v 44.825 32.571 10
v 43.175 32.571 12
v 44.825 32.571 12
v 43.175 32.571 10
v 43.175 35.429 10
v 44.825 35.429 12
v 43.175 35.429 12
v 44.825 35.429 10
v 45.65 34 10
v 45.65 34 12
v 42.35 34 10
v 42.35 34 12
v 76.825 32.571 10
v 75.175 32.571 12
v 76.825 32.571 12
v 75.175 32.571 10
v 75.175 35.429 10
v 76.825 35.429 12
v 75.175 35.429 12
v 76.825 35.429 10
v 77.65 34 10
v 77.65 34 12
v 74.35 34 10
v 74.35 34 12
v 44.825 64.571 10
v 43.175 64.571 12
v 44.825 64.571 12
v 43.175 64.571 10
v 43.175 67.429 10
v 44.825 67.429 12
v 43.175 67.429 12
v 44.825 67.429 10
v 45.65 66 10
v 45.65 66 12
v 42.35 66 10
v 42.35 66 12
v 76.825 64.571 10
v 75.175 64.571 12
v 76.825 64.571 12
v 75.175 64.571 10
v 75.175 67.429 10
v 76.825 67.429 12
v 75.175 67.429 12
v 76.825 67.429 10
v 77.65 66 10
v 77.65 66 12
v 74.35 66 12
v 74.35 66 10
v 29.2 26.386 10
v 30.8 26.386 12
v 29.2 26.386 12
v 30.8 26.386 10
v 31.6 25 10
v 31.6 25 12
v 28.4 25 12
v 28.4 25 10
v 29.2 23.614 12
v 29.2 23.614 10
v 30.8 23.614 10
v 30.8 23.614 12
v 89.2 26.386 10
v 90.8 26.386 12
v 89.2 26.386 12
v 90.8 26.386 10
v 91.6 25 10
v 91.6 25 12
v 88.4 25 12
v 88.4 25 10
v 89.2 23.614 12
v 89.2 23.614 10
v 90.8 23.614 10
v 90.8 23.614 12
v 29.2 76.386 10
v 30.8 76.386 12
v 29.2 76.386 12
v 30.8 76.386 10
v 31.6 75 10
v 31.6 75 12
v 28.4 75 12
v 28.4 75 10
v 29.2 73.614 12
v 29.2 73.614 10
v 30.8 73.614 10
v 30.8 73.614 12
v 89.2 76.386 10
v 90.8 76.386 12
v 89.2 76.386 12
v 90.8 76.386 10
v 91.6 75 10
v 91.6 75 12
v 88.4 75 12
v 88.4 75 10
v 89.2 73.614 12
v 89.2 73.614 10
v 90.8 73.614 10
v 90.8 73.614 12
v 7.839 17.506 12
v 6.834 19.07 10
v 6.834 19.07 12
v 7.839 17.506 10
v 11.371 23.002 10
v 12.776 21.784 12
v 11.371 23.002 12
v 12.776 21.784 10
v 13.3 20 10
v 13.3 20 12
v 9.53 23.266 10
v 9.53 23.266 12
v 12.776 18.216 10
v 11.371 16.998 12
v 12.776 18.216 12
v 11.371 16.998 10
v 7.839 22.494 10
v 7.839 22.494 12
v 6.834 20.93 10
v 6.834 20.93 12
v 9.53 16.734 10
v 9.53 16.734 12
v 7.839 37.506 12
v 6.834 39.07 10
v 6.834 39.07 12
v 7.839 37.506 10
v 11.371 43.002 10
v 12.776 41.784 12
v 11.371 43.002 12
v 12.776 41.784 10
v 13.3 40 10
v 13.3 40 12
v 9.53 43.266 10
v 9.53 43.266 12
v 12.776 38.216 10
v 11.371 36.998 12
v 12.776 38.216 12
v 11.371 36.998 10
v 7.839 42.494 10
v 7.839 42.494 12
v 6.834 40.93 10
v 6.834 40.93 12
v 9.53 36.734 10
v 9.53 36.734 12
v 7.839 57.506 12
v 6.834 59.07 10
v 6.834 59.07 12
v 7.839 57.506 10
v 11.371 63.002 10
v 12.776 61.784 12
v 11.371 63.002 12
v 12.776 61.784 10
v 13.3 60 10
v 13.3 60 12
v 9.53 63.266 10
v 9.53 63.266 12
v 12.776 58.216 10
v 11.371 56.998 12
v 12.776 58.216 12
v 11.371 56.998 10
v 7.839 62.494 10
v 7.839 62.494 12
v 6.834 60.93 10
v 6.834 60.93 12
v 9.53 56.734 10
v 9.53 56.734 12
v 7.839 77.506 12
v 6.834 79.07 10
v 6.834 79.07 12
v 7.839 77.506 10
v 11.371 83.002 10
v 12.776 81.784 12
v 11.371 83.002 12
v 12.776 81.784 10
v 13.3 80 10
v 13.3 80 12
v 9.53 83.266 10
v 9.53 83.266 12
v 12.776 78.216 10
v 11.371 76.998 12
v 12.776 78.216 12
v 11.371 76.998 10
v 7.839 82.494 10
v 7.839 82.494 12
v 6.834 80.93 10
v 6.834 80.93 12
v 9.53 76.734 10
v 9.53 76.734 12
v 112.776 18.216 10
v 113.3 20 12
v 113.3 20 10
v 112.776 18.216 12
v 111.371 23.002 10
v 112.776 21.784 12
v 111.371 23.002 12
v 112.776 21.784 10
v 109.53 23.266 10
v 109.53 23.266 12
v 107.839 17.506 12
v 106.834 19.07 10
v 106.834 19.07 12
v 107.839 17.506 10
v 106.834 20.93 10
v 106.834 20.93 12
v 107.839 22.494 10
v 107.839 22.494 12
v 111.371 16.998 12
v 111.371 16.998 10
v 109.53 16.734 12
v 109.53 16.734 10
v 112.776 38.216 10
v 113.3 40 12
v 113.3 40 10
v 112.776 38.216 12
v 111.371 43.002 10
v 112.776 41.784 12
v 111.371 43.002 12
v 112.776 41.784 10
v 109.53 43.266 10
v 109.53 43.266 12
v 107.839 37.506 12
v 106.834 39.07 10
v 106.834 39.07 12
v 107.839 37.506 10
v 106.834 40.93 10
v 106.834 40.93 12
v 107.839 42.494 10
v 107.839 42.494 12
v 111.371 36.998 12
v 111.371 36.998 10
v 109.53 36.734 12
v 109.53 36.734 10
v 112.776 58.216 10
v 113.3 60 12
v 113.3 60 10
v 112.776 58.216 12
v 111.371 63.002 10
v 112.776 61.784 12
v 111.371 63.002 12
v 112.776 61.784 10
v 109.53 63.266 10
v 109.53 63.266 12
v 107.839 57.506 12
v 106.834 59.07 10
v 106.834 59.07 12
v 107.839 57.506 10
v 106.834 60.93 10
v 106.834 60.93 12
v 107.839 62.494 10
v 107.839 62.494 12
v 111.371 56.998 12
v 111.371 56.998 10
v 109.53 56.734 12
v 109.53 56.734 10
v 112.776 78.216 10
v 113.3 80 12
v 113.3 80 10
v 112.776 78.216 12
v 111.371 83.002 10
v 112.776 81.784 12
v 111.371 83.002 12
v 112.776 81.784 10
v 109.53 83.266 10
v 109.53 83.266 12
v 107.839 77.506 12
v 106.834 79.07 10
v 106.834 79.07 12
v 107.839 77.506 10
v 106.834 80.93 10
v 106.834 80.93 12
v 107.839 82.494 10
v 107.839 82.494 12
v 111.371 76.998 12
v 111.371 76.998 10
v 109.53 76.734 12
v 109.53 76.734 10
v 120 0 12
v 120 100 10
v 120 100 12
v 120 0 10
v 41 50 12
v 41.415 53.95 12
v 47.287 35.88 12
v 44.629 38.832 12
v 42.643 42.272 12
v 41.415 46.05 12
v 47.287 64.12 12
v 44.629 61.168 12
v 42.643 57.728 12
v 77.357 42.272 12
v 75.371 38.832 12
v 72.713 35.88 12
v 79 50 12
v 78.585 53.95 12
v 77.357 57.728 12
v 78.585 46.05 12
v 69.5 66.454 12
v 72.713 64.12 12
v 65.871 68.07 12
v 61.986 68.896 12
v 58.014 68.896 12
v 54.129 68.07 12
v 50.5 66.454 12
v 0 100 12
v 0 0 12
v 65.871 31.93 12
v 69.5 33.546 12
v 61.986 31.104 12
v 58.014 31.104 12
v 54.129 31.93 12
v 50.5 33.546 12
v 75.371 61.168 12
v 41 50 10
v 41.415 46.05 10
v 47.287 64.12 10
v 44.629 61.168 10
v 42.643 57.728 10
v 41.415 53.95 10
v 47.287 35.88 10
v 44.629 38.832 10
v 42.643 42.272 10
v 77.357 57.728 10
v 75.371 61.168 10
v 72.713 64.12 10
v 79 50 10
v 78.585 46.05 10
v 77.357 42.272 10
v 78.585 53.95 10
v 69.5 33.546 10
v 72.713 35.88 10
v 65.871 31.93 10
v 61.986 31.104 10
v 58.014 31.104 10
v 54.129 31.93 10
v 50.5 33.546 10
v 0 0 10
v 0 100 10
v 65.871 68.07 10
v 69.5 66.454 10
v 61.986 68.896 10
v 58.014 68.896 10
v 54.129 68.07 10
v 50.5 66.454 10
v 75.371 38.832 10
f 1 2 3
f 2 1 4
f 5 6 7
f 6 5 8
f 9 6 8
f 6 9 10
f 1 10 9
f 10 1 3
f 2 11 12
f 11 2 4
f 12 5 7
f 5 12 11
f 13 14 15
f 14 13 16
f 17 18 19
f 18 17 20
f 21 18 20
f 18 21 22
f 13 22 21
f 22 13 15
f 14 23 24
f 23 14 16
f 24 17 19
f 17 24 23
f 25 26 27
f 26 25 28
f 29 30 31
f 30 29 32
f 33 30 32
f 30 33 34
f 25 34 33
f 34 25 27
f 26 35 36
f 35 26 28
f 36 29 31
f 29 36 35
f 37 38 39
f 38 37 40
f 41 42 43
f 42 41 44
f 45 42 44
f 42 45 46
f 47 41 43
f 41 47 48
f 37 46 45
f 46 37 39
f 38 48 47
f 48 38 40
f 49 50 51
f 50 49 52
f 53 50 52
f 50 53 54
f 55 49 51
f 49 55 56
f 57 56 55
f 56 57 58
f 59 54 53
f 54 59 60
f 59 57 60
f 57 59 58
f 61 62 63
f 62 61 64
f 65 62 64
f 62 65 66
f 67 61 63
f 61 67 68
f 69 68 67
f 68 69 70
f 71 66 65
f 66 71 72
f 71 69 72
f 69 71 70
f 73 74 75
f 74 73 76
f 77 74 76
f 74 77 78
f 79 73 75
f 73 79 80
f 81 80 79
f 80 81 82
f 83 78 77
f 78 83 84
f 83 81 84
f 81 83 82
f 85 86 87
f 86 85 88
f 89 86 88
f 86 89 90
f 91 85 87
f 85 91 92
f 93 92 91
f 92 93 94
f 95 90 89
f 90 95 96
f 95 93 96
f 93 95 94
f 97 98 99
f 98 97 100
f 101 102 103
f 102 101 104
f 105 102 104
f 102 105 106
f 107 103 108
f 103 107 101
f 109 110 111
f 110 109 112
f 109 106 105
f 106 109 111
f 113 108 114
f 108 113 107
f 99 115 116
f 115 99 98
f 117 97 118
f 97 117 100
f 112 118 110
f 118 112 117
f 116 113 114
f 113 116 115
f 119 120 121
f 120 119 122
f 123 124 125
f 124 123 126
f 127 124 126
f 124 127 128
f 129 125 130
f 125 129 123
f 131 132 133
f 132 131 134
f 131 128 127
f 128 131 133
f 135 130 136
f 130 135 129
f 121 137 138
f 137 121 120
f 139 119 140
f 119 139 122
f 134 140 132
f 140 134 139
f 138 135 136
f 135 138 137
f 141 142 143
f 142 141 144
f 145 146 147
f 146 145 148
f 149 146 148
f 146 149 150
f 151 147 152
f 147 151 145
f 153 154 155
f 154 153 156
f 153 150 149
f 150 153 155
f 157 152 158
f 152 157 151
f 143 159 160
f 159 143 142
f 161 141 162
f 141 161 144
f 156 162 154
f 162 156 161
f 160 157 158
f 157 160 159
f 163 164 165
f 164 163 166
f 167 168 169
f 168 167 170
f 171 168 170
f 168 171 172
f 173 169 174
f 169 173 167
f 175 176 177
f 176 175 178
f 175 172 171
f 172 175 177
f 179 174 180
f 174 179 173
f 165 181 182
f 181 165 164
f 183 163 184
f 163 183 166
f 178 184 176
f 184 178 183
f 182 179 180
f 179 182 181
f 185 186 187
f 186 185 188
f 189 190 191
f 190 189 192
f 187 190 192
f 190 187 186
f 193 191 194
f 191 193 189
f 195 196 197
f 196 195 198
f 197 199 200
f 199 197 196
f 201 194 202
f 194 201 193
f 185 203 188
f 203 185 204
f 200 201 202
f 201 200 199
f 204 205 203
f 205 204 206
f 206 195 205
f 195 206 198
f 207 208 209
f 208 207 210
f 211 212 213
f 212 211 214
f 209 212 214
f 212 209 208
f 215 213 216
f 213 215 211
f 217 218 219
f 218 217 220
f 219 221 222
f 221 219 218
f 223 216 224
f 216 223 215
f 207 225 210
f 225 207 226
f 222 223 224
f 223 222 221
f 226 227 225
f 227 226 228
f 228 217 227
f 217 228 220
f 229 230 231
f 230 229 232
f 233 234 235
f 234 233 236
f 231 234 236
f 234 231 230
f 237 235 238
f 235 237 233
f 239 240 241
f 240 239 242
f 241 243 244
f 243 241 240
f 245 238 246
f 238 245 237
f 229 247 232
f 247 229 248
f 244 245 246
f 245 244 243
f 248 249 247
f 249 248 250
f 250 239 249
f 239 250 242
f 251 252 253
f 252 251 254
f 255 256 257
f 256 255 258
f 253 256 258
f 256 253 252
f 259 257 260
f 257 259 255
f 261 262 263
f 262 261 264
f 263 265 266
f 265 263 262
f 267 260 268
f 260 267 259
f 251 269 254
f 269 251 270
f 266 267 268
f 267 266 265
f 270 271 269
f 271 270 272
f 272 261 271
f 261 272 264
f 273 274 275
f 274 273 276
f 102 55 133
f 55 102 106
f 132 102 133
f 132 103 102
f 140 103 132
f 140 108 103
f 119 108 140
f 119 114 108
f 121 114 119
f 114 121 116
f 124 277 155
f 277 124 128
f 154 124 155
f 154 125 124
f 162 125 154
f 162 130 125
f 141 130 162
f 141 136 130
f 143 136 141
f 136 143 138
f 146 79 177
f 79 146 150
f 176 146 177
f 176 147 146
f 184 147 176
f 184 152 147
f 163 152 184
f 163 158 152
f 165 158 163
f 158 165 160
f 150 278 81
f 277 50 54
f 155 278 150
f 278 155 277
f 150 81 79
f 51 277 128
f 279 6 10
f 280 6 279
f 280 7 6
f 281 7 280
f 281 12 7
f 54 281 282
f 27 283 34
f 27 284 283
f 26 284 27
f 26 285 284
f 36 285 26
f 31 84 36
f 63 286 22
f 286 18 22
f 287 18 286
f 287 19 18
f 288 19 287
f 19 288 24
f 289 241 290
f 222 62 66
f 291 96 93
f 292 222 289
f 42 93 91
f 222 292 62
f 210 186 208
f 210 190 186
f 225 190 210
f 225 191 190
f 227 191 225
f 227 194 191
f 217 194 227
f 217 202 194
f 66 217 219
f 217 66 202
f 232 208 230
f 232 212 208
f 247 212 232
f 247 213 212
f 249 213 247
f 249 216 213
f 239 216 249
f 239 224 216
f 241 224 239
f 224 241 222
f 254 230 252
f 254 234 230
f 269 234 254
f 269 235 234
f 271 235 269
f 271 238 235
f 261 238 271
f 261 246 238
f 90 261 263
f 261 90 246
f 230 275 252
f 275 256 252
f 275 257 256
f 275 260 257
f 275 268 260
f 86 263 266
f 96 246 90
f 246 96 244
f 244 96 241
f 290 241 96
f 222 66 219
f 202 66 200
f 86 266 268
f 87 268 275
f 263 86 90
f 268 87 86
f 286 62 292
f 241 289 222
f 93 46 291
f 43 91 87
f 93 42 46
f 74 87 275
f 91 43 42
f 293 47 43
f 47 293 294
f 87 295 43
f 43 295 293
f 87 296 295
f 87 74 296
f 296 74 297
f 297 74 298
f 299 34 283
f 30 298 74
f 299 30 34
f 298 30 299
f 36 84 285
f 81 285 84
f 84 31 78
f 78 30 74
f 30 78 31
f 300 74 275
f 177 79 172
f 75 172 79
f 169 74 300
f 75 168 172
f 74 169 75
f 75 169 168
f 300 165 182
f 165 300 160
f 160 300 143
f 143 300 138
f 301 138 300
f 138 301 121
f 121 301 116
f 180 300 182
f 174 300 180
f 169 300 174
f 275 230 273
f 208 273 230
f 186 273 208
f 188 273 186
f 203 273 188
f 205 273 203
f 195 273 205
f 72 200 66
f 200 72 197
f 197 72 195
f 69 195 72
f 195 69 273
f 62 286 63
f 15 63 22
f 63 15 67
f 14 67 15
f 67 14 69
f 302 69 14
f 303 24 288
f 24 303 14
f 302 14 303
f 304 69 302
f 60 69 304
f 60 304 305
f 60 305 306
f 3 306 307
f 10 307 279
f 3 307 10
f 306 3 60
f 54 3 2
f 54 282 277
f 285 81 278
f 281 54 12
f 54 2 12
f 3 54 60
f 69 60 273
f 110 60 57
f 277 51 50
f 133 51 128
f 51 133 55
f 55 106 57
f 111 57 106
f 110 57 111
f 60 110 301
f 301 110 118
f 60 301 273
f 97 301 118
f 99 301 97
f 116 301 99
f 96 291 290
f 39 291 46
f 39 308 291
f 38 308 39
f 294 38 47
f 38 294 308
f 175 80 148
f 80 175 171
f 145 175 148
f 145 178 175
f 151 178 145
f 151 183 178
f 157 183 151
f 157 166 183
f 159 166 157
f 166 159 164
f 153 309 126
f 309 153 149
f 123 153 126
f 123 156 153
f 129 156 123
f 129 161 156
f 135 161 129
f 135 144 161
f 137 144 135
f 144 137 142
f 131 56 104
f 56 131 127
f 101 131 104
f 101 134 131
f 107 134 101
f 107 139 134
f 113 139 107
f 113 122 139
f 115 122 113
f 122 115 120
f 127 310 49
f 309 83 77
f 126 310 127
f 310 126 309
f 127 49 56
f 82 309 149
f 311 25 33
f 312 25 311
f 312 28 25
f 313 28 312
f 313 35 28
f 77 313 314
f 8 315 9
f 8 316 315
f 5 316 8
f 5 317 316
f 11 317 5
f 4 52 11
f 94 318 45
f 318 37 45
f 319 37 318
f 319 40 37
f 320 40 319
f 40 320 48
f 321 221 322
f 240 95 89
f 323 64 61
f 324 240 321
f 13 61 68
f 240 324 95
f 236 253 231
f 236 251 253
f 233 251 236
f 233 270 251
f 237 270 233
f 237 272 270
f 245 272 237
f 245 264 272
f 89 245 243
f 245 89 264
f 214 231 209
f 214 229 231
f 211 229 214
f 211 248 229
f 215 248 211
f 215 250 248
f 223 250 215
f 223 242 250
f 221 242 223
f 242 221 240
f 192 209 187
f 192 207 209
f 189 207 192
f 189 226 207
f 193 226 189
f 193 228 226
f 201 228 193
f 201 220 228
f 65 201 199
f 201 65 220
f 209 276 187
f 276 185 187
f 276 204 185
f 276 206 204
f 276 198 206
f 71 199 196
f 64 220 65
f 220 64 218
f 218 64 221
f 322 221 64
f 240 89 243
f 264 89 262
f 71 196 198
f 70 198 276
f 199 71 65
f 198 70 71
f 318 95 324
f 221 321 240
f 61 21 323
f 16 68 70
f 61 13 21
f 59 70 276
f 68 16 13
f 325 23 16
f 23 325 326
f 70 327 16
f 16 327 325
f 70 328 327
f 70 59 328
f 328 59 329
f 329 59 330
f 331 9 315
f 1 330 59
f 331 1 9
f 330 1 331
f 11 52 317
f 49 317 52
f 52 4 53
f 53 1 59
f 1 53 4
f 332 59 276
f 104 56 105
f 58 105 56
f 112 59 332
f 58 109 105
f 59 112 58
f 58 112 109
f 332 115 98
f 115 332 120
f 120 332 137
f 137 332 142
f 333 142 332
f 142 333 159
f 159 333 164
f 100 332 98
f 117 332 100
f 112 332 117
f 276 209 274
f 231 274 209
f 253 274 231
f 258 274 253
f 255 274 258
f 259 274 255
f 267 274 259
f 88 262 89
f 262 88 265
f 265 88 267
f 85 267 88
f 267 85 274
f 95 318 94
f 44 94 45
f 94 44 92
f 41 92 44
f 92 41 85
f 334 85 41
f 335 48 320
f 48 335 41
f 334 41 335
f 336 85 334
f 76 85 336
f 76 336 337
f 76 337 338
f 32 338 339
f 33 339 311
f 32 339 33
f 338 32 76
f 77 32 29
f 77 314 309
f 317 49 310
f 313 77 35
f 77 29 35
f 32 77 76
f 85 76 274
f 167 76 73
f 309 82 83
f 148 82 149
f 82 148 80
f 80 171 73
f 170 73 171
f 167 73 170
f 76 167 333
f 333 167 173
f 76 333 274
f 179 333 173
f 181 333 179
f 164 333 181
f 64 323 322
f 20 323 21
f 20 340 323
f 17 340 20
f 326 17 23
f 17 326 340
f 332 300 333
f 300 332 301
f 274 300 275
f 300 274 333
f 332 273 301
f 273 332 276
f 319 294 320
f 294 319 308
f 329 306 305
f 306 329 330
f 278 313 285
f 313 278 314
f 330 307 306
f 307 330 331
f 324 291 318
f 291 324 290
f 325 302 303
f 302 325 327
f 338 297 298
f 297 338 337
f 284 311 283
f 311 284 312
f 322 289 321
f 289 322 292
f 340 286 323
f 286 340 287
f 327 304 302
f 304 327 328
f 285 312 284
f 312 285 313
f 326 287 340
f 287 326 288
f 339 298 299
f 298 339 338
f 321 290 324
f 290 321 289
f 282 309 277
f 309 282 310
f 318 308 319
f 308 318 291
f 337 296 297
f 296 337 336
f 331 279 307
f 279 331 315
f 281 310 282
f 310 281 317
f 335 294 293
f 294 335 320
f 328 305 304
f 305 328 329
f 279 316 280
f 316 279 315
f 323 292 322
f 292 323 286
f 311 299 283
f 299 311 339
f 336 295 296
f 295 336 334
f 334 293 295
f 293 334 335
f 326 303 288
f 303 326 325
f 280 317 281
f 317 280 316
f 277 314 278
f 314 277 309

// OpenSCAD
// Dimensioni HAT modificate | IT/EN: Modified HAT dimensions
hat_length = 120; // Da 65 a 120 | IT/EN: From 65 to 120
hat_width = 100;  // Da 55 a 100 | IT/EN: From 55 to 100
hat_height = 10; // Altezza totale dal PCB | IT/EN: Total height from the PCB
hat_hole_inset = 2.5; // Bordi fori di fissaggio | IT/EN: Mounting-hole edge margins
hat_hole_diameter = 3.2; // Diametro fori HAT | IT/EN: HAT-hole diameter

// Dimensioni ventola | IT/EN: Fan dimensions
fan_size = 40;
fan_hole_spacing = 32; // Interasse fori | IT/EN: Hole spacing
fan_hole_diameter = 3.3; // Diametro fori ventola | IT/EN: Fan-hole diameter
fan_airflow_diameter = 38; // Diametro apertura centrale | IT/EN: Center-opening diameter

// Parametri struttura | IT/EN: Structure parameters
base_thickness = 2;
pillar_height = hat_height - base_thickness;
pillar_diameter = 6;
top_thickness = 2;

// Parametri fori antenne | IT/EN: Antenna-hole parameters
antenna_diameter = 6.6; // Diametro fori RP-SMA | IT/EN: RP-SMA hole diameter
antenna_margin = 20; // Distanza dal bordo superiore/inferiore (aumentata) | IT/EN: Increased distance from top/bottom edge
antenna_spacing = 20; // Distanza tra i fori | IT/EN: Distance between holes
antenna_offset = 10; // Distanza dal bordo laterale (aumentata per essere più interni) | IT/EN: Increased side-edge distance, placing the holes farther inward

// Calcolo offset per centrare i fori | IT/EN: Calculate offsets to center the holes
offset_x = (hat_length - 65) / 2;
offset_y = (hat_width - 55) / 2;

// Calcolo posizioni fori HAT (mantenute relative) | IT/EN: Calculate HAT-hole positions, retaining relative placement
hat_hole_positions = [
    [hat_hole_inset + offset_x, hat_hole_inset + offset_y],
    [65 - hat_hole_inset + offset_x, hat_hole_inset + offset_y],
    [hat_hole_inset + offset_x, 55 - hat_hole_inset + offset_y],
    [65 - hat_hole_inset + offset_x, 55 - hat_hole_inset + offset_y]
];

// Calcolo posizioni fori ventola (mantenute relative) | IT/EN: Calculate fan-hole positions, retaining relative placement
fan_center_x = 65/2 + offset_x;
fan_center_y = 55/2 + offset_y;
fan_hole_offset = fan_hole_spacing / 2;

fan_hole_positions = [
    [fan_center_x - fan_hole_offset, fan_center_y - fan_hole_offset],
    [fan_center_x + fan_hole_offset, fan_center_y - fan_hole_offset],
    [fan_center_x - fan_hole_offset, fan_center_y + fan_hole_offset],
    [fan_center_x + fan_hole_offset, fan_center_y + fan_hole_offset]
];

// Piastra superiore | IT/EN: Top plate
module top_plate() {
    translate([0, 0, base_thickness + pillar_height]) {
        difference() {
            // Piastra principale (nuove dimensioni) | IT/EN: Main plate with the new dimensions
            cube([hat_length, hat_width, top_thickness]);
            
            // Foro centrale per flusso d'aria | IT/EN: Center airflow opening
            translate([fan_center_x, fan_center_y, -0.1])
            cylinder(d = fan_airflow_diameter, h = top_thickness + 0.2);
            
            // Fori di montaggio ventola | IT/EN: Fan mounting holes
            for(pos = fan_hole_positions) {
                translate([pos[0], pos[1], -0.1])
                cylinder(d = fan_hole_diameter, h = top_thickness + 0.2);
            }
            
            // Fori passanti pilastri | IT/EN: Through-holes for pillars
            for(pos = hat_hole_positions) {
                translate([pos[0], pos[1], -0.1])
                cylinder(d = hat_hole_diameter, h = top_thickness + 0.2);
            }
            
            // Fori per antenne RP-SMA (lato sinistro - x=0) | IT/EN: RP-SMA antenna holes on the left side, x=0
            for(i = [0:3]) {
                translate([
                    antenna_offset, 
                    antenna_margin + i * antenna_spacing, 
                    -0.1
                ])
                cylinder(d = antenna_diameter, h = top_thickness + 0.2);
            }
            
            // Fori per antenne RP-SMA (lato destro - x=hat_length) | IT/EN: RP-SMA antenna holes on the right side, x=hat_length
            for(i = [0:3]) {
                translate([
                    hat_length - antenna_offset, 
                    antenna_margin + i * antenna_spacing, 
                    -0.1
                ])
                cylinder(d = antenna_diameter, h = top_thickness + 0.2);
            }
        }
    }
}

// Assemblaggio finale | IT/EN: Final assembly
union() {
    top_plate();
}
